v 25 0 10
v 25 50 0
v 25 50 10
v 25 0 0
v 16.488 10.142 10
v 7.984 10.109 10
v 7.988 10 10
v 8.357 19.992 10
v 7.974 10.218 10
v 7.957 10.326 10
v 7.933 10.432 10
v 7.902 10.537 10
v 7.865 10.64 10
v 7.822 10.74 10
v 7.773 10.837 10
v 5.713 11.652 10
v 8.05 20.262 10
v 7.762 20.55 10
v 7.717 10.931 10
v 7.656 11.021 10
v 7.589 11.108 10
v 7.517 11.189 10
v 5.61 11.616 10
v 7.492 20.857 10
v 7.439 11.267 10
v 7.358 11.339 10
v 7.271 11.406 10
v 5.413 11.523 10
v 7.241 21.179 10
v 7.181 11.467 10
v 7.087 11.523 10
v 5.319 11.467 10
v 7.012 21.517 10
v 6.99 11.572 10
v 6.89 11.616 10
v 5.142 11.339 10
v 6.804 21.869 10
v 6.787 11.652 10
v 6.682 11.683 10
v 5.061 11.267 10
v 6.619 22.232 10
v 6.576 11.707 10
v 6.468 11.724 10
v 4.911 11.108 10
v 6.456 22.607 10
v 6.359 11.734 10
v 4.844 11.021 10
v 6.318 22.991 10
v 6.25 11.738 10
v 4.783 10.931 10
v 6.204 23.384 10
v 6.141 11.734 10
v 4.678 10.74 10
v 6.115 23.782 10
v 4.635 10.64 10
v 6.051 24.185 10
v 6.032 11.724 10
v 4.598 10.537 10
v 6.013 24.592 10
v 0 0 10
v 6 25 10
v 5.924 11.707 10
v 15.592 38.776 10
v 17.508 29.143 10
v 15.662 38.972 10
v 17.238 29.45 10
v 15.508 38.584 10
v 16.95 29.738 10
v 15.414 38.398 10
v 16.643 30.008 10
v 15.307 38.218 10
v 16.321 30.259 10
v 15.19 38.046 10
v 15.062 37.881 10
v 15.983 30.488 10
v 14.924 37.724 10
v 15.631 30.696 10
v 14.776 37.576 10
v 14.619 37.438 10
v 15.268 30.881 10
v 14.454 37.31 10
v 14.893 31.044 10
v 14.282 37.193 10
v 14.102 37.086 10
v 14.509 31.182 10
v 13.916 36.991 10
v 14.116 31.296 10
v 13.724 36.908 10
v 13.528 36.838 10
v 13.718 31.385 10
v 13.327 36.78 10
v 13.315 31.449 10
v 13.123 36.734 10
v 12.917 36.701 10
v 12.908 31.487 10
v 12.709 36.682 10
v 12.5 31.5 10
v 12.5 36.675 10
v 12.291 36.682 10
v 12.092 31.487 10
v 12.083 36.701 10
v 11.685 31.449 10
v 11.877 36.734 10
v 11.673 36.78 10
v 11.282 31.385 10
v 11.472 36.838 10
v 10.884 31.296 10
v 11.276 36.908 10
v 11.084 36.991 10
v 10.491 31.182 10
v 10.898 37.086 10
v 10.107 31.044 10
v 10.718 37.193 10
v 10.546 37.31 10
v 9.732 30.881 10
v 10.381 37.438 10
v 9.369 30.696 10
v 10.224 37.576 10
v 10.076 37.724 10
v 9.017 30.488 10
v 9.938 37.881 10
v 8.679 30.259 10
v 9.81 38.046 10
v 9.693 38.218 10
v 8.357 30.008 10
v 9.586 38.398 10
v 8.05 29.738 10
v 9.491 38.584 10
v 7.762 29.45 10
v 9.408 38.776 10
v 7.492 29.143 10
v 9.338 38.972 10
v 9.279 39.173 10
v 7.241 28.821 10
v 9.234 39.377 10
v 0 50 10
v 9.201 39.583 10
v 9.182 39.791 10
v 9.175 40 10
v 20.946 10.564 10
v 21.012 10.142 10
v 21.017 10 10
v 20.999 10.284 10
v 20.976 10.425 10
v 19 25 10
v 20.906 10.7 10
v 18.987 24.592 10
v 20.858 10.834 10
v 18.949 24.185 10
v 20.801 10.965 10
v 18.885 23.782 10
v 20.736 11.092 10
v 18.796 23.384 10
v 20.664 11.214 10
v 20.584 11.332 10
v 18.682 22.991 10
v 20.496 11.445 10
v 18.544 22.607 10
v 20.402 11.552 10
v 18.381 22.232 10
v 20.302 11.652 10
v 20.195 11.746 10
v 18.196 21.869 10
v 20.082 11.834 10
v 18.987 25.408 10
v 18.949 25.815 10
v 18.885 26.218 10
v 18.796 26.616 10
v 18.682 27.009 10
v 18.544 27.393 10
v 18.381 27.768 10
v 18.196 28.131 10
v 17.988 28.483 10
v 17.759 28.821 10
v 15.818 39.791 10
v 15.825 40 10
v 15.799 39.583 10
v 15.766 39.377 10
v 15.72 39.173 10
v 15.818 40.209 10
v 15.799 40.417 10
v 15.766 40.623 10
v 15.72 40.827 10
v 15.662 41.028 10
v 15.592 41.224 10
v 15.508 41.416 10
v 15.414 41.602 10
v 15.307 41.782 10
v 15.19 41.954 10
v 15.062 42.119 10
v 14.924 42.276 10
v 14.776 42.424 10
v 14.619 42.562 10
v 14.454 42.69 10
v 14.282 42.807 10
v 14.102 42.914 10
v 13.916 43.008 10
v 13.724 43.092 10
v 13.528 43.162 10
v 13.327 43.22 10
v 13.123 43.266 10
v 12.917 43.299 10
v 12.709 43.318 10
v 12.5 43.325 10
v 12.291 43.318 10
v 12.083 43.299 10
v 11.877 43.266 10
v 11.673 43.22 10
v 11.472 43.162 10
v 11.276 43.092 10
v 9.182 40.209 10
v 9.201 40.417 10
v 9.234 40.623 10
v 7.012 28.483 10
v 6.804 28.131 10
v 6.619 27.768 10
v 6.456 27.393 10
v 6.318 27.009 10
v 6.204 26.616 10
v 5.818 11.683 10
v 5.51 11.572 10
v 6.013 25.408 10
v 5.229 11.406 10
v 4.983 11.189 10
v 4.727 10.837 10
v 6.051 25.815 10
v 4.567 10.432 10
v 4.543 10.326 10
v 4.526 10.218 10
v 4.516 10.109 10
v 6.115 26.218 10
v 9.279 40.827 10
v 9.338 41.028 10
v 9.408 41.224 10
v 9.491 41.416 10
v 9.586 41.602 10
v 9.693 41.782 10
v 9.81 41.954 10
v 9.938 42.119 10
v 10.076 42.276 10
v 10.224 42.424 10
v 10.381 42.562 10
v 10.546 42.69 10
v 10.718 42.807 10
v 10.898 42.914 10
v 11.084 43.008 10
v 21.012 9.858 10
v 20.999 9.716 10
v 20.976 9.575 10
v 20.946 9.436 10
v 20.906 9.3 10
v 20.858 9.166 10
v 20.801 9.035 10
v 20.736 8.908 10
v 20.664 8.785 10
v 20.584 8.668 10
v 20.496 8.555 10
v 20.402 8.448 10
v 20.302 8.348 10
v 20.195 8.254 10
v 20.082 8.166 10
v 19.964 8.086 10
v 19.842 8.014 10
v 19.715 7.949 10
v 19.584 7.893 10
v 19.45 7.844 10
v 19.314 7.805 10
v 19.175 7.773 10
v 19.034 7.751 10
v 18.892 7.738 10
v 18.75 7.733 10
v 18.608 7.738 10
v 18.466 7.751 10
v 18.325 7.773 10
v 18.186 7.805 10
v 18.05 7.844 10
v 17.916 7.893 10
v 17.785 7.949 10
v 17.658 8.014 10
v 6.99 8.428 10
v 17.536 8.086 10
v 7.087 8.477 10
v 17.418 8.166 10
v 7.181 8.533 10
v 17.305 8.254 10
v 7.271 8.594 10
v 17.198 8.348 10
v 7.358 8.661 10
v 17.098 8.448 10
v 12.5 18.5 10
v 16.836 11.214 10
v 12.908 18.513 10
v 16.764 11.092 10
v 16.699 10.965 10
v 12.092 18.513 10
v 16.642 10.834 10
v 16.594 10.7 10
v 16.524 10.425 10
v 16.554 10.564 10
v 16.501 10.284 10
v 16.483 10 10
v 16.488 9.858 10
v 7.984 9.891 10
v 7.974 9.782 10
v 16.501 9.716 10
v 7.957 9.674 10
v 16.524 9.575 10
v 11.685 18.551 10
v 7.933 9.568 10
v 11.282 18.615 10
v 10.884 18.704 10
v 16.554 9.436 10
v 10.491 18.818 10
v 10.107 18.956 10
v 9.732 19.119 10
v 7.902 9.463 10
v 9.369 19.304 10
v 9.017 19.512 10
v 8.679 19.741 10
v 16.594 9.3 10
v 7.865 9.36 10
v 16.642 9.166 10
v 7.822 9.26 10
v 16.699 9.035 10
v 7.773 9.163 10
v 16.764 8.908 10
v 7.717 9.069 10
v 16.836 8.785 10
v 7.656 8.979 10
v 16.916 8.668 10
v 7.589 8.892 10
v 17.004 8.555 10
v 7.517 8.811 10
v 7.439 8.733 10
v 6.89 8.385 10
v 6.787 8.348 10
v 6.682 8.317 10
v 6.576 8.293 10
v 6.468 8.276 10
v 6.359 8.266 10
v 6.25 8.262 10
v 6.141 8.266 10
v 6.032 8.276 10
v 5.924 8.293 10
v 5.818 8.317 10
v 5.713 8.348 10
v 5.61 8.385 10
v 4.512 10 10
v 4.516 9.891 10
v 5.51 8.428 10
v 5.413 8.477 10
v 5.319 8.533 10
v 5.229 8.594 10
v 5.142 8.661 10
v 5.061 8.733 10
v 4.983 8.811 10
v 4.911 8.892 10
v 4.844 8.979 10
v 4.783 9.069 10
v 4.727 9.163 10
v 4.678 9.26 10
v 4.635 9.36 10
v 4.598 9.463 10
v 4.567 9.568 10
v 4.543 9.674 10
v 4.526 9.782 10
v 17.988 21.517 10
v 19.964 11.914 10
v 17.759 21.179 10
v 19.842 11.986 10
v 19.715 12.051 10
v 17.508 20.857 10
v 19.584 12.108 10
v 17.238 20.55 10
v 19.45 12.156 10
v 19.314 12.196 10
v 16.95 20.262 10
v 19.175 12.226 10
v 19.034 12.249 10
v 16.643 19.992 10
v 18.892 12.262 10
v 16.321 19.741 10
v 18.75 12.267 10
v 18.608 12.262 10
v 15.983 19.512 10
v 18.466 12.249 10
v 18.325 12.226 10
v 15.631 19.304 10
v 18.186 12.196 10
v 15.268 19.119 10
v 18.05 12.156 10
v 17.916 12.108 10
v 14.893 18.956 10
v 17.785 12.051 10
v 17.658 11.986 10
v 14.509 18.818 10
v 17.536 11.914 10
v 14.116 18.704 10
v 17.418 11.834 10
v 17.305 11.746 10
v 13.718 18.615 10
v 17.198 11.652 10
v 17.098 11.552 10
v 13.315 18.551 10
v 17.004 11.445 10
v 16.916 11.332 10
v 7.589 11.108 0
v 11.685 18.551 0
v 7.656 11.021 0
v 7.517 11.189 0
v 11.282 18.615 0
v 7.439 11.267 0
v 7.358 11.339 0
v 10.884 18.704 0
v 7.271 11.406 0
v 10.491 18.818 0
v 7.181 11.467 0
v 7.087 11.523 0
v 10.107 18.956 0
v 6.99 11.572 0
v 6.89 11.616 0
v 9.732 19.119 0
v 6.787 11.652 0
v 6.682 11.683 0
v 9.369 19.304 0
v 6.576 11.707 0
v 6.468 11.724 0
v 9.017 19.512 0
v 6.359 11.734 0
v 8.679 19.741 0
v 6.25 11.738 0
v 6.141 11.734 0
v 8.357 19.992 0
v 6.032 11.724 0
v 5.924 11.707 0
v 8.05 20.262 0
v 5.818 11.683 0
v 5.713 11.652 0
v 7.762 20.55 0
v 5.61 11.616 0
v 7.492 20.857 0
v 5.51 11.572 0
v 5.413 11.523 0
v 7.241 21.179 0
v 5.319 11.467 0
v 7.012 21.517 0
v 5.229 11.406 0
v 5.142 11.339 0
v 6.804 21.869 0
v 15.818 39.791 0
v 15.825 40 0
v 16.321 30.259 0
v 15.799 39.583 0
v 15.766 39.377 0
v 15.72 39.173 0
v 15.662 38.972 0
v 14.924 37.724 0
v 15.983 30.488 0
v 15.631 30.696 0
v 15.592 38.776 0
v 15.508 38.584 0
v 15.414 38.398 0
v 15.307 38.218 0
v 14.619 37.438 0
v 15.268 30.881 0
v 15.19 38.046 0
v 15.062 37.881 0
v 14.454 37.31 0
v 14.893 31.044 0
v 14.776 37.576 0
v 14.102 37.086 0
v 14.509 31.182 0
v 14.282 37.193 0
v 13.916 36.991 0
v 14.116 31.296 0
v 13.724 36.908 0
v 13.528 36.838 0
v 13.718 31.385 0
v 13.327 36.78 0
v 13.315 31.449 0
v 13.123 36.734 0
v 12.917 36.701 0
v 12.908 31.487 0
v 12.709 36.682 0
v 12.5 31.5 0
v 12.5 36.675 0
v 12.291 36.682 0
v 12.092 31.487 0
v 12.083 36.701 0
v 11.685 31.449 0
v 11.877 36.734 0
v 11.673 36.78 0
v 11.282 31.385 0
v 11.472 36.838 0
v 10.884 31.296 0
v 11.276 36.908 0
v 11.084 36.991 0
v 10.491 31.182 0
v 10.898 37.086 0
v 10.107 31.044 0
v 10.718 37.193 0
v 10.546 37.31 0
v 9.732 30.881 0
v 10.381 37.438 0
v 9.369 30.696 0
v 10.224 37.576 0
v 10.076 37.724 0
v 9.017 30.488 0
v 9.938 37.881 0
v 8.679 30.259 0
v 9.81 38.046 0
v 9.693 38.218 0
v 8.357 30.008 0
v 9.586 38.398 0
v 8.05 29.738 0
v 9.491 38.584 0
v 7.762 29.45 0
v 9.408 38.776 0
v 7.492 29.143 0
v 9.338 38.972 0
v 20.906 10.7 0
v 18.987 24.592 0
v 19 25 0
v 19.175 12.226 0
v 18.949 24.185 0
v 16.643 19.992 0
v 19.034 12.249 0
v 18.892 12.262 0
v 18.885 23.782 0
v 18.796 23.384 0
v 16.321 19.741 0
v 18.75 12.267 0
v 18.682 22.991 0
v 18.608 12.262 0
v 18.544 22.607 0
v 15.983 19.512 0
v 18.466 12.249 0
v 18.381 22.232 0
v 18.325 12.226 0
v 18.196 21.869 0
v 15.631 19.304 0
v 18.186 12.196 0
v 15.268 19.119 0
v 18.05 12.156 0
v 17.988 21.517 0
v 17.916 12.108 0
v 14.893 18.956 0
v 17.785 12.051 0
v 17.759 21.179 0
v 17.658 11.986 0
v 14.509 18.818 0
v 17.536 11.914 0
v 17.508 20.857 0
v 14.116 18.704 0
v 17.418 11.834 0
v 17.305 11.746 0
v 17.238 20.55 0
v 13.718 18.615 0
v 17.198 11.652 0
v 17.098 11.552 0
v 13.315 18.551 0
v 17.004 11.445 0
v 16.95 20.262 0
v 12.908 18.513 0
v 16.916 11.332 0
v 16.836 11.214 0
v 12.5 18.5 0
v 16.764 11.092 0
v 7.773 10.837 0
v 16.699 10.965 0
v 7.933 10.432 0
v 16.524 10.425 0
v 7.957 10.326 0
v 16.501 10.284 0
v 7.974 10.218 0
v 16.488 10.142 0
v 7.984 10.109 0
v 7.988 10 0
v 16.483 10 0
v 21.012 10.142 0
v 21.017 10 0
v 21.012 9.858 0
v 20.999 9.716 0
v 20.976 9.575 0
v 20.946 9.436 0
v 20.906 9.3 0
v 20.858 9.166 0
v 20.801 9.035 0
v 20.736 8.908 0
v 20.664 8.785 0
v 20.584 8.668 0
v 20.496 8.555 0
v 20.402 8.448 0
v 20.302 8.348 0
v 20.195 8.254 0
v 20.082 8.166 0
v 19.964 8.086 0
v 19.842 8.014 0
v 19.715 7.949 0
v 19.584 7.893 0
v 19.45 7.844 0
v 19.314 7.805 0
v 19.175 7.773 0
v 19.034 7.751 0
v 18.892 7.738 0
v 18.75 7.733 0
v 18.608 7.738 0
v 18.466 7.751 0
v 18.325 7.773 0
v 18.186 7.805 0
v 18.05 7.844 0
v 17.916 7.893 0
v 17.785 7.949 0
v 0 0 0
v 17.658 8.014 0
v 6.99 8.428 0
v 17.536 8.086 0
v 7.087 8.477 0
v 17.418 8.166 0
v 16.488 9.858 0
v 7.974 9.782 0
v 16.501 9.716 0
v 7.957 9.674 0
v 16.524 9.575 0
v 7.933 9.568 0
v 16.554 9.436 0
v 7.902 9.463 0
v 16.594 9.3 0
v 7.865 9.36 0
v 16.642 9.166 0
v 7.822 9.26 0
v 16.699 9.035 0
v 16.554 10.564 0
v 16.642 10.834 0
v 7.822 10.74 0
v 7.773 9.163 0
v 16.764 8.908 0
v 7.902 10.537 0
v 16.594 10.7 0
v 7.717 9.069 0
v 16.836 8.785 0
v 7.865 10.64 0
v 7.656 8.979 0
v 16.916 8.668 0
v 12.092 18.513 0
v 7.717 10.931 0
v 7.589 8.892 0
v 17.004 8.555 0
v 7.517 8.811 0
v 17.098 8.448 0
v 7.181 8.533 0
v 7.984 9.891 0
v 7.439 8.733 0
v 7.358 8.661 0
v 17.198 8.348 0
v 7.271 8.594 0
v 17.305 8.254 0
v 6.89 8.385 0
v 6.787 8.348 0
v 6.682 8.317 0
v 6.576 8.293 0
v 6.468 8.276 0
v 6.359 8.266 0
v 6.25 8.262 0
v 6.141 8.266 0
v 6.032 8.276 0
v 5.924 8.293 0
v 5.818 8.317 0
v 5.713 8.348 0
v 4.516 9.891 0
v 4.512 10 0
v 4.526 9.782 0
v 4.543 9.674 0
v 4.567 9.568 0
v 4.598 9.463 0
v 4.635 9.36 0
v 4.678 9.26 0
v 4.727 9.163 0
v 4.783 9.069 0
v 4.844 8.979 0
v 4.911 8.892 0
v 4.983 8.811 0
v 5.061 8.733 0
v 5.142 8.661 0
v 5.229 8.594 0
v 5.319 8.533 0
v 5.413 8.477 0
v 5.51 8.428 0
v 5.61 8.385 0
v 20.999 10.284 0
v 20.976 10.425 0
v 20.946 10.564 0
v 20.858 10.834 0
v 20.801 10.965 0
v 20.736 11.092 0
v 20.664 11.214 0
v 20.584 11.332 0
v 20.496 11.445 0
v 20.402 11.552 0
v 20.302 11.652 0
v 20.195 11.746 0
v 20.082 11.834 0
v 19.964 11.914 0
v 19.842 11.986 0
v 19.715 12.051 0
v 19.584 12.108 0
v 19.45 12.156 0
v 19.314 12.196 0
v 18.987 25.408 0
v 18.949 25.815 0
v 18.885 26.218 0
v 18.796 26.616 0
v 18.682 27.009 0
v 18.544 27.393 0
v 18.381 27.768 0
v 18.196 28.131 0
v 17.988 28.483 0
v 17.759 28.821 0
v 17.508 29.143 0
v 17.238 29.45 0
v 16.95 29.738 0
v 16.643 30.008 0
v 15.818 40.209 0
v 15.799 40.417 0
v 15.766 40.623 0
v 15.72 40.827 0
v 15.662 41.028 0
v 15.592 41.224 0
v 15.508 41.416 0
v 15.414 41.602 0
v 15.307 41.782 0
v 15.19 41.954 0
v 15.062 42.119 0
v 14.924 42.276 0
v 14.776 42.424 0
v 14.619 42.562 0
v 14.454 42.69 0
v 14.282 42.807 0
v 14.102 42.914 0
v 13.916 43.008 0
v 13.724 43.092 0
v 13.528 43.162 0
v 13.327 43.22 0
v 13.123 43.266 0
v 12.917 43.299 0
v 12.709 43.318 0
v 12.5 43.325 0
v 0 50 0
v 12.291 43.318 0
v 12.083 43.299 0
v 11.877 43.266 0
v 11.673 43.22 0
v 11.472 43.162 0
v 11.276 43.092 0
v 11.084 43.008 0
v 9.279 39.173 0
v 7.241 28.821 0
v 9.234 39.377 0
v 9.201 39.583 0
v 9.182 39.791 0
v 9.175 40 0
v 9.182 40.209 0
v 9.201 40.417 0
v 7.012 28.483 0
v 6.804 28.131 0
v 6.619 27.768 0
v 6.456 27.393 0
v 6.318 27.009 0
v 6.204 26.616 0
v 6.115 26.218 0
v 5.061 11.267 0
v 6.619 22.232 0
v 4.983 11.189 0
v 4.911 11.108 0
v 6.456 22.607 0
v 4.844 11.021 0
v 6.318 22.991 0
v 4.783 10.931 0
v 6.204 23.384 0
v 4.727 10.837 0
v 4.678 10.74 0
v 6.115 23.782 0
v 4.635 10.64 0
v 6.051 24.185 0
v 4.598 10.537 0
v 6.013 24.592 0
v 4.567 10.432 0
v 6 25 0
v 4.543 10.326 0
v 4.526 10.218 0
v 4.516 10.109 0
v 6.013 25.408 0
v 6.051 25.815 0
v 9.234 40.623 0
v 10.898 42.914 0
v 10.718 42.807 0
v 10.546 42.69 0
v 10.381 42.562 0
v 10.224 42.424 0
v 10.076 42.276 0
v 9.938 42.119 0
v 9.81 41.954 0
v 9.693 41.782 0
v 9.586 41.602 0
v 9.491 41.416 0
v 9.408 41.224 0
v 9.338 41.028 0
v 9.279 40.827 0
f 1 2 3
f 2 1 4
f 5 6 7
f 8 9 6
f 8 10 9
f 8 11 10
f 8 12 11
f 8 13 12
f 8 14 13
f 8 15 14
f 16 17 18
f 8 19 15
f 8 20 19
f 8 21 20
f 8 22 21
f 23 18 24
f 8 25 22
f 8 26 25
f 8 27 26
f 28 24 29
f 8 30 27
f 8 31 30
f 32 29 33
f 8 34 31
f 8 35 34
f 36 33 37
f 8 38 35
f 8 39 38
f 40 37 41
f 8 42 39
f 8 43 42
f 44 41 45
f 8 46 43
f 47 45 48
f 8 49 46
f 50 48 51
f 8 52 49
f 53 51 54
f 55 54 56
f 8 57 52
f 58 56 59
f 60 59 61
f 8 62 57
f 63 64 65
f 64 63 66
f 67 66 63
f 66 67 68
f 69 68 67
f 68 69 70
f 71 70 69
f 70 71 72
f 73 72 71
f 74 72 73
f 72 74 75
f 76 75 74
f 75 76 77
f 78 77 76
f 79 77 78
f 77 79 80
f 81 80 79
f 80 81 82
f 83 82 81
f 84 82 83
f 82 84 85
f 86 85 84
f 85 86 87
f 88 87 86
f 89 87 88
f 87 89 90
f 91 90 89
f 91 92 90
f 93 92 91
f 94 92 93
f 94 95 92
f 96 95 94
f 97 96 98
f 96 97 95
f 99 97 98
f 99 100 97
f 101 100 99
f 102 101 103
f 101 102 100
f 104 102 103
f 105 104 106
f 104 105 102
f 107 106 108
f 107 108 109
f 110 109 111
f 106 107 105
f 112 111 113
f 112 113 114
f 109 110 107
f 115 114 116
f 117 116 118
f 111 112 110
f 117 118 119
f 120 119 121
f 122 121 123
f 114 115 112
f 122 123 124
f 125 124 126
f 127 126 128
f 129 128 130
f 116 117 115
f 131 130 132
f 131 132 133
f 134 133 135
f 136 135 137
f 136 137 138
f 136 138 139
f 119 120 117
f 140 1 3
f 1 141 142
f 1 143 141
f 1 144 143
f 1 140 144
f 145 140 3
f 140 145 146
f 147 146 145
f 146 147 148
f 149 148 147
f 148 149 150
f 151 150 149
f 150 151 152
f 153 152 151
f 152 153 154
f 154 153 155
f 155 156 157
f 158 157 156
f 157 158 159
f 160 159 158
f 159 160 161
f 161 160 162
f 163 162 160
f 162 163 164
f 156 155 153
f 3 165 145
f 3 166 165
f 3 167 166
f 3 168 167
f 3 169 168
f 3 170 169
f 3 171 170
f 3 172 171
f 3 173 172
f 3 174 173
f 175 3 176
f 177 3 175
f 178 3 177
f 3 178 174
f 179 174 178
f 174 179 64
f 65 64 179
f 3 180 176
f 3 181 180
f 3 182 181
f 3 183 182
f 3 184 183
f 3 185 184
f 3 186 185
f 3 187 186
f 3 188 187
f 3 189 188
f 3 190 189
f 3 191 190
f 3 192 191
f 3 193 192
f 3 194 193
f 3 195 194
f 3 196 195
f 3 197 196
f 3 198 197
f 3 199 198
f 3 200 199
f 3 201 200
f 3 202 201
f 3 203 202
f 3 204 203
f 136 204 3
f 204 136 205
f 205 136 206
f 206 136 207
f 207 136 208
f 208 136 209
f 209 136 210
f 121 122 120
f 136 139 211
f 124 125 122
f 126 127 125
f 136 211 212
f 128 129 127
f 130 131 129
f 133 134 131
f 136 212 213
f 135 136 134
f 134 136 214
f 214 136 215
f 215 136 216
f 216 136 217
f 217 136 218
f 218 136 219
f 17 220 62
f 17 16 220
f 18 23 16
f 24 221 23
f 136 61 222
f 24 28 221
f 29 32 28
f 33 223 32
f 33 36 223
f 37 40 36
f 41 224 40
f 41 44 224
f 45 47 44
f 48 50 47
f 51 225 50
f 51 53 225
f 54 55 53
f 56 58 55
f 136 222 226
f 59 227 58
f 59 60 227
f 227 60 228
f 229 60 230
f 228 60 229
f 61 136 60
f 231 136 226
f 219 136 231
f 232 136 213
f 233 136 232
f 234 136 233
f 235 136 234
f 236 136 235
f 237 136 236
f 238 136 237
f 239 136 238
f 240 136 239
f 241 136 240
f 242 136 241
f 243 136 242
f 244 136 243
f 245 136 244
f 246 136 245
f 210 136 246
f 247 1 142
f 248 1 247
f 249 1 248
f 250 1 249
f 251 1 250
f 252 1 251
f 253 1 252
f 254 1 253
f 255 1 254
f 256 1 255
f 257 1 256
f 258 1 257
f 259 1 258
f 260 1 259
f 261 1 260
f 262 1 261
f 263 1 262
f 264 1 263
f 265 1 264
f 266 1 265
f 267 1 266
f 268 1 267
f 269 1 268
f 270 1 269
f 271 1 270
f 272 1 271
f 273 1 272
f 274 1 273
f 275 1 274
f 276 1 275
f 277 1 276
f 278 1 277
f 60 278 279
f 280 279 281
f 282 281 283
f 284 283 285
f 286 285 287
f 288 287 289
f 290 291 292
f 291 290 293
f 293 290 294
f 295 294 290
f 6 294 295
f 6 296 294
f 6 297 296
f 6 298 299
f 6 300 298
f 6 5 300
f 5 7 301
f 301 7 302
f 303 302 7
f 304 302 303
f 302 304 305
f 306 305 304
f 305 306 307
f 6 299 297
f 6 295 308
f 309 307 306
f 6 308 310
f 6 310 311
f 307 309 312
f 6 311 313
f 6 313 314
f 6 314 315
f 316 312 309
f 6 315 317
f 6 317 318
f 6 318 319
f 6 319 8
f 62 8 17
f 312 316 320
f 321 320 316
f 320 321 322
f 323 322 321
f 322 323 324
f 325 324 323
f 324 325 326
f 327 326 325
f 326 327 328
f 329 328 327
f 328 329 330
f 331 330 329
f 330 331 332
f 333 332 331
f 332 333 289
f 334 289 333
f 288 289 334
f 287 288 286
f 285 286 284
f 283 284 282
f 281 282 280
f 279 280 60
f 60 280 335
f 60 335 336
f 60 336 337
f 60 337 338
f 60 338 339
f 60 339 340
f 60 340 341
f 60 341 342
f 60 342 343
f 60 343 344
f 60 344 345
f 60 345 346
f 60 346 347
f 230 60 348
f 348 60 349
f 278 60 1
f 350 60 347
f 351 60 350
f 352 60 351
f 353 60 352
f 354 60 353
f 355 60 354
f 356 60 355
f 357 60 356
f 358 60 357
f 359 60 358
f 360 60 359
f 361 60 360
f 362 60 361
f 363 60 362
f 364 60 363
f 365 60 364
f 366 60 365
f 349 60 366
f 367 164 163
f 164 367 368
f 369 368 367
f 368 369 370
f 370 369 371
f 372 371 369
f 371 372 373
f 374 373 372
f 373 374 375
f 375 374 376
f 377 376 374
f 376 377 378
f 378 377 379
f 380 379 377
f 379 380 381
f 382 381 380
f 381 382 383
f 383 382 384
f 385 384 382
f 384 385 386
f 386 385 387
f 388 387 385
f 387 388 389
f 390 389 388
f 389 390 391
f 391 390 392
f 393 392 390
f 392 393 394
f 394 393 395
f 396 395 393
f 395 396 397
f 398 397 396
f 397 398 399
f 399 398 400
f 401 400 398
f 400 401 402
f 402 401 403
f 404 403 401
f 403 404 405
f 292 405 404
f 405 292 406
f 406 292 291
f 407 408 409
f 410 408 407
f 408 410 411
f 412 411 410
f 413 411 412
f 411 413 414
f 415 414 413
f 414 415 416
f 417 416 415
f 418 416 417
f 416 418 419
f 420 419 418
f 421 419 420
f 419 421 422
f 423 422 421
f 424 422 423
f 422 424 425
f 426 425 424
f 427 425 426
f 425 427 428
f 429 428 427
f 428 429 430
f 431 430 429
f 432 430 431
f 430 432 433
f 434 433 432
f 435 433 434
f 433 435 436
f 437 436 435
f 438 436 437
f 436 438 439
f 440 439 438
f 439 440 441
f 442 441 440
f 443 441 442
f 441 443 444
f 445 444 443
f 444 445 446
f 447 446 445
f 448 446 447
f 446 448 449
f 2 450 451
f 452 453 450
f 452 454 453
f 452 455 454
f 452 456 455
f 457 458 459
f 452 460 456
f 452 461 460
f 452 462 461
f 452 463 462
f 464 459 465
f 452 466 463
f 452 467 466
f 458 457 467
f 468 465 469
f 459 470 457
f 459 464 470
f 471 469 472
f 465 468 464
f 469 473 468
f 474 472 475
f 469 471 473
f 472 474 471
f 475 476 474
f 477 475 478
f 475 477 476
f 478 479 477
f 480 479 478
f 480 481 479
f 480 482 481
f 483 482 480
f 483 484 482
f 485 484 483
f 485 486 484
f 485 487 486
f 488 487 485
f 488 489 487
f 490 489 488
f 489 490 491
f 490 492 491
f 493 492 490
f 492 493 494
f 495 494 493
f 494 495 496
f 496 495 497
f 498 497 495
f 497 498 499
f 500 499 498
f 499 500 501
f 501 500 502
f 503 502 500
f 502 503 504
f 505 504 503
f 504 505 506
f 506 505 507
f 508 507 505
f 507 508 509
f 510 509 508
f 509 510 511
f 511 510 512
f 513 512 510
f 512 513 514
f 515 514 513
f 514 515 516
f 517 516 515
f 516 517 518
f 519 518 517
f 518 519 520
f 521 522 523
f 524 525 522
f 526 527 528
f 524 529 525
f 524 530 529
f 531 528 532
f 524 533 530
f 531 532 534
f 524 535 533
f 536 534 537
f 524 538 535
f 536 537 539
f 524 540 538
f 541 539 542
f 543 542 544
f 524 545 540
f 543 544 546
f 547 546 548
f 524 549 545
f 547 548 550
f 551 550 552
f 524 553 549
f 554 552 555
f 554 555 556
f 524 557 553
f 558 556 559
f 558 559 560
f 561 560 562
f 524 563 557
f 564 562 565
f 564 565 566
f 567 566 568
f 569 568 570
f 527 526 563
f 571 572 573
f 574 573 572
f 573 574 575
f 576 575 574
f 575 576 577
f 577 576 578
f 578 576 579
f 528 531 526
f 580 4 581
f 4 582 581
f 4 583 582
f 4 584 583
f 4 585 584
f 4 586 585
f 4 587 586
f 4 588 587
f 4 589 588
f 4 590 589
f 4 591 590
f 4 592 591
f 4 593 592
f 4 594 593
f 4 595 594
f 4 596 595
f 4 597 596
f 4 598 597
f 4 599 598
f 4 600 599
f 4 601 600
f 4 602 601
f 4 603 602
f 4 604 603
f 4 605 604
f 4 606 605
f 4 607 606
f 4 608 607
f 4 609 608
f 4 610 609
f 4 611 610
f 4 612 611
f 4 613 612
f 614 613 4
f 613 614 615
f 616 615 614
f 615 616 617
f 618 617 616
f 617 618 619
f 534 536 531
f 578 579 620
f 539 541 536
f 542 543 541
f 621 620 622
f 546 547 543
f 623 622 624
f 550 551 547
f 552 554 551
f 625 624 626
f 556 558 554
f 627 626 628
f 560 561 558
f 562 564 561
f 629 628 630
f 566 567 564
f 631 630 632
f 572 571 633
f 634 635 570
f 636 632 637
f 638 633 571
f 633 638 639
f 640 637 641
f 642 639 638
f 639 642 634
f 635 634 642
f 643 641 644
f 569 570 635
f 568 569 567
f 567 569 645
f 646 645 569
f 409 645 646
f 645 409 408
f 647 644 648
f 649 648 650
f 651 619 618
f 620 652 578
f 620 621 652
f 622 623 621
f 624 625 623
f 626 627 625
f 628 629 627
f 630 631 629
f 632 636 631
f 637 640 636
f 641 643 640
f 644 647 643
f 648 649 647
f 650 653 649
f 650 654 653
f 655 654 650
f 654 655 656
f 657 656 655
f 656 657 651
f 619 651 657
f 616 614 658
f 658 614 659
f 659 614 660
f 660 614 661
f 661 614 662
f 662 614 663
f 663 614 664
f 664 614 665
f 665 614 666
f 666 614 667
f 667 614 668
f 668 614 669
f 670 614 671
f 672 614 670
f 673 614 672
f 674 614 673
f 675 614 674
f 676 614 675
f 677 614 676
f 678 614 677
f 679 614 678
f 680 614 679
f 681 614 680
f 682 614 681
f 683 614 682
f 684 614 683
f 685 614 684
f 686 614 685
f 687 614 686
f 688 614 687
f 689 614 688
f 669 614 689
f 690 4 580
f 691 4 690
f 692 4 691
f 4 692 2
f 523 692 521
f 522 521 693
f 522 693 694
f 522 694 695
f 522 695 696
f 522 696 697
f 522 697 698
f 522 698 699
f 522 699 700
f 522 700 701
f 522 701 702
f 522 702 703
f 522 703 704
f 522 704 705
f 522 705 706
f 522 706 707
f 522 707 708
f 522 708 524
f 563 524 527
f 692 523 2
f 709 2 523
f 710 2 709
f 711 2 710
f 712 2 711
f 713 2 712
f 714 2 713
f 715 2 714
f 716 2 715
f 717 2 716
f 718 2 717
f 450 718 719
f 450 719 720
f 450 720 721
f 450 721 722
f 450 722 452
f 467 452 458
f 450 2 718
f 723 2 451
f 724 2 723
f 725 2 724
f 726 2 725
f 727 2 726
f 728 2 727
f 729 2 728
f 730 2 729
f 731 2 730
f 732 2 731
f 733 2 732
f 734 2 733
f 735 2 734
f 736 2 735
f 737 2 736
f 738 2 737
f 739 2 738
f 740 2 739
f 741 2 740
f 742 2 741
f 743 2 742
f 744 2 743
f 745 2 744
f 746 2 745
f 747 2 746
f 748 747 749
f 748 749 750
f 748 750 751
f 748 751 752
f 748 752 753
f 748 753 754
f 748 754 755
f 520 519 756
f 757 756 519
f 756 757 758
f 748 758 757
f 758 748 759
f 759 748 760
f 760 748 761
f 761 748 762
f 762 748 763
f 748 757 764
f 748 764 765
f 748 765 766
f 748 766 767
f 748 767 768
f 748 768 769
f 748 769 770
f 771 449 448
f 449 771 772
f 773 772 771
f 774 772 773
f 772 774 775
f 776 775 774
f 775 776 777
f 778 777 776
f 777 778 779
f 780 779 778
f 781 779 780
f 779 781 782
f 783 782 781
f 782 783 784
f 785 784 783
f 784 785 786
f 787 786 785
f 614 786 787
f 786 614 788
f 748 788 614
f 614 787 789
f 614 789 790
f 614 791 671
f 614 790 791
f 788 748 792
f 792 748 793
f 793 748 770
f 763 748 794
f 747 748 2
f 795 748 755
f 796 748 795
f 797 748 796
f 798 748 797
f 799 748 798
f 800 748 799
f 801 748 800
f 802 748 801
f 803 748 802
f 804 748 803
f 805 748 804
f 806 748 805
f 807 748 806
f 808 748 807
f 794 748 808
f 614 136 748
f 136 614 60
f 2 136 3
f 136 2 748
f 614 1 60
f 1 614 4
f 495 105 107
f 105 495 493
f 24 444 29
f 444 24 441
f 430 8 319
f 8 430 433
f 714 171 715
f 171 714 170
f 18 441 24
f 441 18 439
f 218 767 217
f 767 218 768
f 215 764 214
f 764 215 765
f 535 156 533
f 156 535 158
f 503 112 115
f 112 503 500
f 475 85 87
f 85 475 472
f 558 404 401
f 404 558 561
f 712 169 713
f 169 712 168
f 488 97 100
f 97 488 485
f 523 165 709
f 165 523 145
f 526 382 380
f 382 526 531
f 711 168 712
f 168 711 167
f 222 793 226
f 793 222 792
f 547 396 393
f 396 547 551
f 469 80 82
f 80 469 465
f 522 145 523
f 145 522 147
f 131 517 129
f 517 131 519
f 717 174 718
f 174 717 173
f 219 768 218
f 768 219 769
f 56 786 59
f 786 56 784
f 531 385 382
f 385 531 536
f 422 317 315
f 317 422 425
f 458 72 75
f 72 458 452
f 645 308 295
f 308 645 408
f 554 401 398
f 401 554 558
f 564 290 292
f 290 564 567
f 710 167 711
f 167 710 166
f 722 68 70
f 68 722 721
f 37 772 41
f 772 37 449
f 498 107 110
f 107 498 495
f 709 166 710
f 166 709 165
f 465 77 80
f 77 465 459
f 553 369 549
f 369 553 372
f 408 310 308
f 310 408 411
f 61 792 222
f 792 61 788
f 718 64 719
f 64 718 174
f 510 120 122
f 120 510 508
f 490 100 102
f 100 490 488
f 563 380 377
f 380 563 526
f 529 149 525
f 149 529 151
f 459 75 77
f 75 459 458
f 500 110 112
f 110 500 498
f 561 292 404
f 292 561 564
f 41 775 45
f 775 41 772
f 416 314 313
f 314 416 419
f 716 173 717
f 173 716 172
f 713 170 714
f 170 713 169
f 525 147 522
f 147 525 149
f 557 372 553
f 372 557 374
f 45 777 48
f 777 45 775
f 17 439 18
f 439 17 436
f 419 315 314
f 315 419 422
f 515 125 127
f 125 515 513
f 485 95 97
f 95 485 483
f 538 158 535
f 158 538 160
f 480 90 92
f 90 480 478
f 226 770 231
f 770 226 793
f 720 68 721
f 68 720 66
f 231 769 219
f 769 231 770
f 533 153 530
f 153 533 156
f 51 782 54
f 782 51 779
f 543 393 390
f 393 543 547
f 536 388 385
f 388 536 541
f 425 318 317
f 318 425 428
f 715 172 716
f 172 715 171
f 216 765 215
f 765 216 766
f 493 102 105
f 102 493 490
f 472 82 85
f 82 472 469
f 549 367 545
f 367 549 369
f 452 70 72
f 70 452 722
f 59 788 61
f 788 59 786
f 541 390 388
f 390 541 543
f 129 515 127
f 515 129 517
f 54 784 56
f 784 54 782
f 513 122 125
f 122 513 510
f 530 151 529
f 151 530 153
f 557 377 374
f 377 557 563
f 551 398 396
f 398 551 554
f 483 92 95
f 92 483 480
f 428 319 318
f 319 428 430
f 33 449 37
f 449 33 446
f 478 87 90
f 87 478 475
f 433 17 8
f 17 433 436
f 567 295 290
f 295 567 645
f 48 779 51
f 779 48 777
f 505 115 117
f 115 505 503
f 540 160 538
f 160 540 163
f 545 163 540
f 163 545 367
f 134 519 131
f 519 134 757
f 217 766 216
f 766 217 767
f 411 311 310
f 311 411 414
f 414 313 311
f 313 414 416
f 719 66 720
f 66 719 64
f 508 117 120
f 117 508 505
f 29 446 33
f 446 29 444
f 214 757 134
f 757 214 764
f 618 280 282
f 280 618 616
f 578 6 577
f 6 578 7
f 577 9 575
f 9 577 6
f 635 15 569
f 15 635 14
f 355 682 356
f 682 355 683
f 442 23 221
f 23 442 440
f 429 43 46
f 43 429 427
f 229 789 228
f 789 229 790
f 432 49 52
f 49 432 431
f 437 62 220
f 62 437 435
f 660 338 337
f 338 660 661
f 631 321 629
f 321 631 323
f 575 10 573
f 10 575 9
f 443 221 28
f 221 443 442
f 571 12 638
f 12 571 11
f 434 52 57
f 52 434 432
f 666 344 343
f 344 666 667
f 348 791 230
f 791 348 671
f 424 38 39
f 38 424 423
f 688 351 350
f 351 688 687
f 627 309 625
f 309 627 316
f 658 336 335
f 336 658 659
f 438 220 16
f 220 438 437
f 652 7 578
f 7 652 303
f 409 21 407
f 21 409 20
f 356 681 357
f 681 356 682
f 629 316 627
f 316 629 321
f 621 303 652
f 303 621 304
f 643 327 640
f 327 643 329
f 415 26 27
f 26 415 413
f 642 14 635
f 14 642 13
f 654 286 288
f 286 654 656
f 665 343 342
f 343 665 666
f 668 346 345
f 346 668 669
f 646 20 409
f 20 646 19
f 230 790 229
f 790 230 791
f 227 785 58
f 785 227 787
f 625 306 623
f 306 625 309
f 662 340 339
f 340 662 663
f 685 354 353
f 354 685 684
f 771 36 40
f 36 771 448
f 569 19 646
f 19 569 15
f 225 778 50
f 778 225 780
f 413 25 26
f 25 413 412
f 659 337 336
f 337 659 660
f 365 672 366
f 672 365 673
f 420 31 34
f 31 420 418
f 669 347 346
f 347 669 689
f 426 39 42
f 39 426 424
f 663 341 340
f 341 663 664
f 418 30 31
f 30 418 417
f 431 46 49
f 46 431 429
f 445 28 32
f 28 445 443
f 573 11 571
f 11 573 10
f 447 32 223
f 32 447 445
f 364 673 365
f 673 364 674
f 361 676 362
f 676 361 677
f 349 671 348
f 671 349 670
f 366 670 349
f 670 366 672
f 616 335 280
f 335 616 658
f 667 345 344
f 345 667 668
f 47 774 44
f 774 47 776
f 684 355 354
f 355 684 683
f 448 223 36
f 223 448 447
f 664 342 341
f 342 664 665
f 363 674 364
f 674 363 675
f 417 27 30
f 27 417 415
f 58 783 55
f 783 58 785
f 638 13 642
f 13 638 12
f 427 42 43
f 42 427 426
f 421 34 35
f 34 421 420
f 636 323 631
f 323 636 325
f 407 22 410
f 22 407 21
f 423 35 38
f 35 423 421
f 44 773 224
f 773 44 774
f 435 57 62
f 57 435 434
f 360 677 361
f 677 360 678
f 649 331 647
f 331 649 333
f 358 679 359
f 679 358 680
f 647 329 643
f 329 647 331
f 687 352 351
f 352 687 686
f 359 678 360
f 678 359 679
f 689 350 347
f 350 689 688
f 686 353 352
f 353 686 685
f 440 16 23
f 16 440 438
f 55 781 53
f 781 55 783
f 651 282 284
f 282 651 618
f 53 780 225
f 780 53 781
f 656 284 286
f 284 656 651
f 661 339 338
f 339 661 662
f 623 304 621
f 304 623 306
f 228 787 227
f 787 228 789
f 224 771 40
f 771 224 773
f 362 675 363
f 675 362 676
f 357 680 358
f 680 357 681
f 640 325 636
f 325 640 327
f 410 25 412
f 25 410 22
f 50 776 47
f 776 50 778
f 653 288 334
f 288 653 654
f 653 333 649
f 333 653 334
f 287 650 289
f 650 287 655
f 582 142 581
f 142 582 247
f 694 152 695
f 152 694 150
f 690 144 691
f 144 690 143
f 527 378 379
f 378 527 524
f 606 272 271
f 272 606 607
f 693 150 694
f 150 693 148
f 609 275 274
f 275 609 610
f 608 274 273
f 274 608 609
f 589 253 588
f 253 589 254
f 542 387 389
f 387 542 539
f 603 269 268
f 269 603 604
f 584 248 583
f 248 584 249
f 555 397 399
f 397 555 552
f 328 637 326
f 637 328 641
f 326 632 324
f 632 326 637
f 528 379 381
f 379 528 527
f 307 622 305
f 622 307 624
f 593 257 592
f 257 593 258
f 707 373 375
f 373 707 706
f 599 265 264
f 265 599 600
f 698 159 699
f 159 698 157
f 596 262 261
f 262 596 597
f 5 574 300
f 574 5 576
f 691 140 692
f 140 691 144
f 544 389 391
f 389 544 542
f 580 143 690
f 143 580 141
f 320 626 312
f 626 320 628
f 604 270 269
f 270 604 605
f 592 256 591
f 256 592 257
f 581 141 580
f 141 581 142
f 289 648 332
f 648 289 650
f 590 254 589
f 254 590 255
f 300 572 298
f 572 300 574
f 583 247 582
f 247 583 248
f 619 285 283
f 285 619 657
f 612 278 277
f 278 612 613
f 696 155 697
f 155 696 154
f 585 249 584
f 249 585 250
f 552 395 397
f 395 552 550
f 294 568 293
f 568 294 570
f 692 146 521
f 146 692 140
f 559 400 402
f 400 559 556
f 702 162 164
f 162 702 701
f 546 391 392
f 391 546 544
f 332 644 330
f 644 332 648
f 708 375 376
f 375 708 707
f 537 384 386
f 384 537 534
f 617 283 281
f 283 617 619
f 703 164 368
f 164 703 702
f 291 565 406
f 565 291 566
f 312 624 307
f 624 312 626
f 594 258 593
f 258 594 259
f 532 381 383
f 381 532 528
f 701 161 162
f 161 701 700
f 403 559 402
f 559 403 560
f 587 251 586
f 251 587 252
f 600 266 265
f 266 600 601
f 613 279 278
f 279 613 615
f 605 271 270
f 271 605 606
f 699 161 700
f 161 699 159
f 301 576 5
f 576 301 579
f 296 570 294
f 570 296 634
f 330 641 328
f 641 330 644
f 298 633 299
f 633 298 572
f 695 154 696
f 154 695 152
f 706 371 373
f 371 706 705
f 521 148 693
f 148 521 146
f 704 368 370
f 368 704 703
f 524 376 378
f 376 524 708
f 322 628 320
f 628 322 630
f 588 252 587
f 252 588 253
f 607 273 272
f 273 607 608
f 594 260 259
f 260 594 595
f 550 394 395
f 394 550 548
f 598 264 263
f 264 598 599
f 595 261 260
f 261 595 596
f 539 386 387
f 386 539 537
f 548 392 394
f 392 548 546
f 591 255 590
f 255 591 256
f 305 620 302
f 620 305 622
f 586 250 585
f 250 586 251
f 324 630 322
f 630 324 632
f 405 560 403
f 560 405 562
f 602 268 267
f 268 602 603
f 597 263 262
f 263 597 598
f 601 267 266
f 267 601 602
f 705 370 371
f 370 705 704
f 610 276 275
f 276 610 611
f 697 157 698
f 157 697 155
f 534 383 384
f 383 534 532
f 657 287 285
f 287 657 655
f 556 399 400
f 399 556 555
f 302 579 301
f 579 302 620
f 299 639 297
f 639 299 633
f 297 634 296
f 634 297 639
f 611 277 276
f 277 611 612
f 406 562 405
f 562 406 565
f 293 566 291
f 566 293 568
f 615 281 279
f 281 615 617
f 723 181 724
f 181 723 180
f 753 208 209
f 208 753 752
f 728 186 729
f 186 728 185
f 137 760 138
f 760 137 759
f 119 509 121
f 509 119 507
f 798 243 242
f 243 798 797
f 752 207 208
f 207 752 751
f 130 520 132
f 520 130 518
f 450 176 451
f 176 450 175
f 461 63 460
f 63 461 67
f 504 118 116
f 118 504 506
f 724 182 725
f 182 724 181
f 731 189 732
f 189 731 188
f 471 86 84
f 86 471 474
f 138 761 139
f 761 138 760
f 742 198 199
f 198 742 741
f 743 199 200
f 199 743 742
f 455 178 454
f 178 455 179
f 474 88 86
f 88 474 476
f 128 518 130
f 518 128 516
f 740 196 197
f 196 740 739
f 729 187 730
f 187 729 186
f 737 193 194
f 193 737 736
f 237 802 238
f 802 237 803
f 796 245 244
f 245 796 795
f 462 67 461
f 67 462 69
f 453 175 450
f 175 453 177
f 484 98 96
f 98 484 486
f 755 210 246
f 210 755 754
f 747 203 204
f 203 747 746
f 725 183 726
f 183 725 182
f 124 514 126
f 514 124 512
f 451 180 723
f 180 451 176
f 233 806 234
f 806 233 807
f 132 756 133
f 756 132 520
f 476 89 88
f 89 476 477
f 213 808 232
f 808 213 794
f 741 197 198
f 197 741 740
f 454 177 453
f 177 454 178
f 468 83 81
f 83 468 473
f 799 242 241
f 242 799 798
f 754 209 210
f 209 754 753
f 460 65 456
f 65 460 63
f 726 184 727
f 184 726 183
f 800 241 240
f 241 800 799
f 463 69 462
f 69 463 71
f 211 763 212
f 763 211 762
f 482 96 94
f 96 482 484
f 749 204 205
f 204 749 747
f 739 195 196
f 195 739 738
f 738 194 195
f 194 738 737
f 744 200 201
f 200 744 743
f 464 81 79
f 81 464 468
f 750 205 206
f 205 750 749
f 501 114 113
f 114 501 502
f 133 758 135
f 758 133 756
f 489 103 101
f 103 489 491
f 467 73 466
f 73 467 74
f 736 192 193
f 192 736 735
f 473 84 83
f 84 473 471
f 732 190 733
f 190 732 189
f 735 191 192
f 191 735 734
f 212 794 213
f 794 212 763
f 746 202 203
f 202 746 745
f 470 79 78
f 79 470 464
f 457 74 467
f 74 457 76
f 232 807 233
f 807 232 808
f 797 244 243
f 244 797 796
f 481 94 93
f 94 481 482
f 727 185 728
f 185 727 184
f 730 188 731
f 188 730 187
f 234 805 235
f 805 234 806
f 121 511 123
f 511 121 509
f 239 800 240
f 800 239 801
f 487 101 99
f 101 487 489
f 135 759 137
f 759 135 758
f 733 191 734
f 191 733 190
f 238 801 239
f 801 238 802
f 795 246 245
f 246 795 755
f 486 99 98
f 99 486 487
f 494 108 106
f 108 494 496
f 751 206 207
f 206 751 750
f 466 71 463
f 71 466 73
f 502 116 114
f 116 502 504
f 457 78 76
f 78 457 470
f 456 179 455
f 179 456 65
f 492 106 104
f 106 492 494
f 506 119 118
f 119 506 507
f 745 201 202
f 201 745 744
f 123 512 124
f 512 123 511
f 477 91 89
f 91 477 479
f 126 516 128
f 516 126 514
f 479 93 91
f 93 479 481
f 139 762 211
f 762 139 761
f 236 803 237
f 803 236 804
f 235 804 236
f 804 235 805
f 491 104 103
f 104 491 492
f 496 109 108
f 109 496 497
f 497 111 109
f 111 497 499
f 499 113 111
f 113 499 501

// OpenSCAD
$fn=100;

difference() {
    cube( [25, 50, 10] );
    
    translate( [12.5, 25, -1] )
        cylinder( r=25.4/4+0.15, h=12 );
    
    translate( [12.5/2, 10, -1] )
        cylinder( r=25.4/16+0.15, h=12 );

    translate( [12.5+12.5/2, 10, -1] )
        cylinder( r=25.4/12+0.15, h=12 );

    translate( [12.5, 40, -1] )
        cylinder( r=25.4/8+0.15, h=12 );

}
